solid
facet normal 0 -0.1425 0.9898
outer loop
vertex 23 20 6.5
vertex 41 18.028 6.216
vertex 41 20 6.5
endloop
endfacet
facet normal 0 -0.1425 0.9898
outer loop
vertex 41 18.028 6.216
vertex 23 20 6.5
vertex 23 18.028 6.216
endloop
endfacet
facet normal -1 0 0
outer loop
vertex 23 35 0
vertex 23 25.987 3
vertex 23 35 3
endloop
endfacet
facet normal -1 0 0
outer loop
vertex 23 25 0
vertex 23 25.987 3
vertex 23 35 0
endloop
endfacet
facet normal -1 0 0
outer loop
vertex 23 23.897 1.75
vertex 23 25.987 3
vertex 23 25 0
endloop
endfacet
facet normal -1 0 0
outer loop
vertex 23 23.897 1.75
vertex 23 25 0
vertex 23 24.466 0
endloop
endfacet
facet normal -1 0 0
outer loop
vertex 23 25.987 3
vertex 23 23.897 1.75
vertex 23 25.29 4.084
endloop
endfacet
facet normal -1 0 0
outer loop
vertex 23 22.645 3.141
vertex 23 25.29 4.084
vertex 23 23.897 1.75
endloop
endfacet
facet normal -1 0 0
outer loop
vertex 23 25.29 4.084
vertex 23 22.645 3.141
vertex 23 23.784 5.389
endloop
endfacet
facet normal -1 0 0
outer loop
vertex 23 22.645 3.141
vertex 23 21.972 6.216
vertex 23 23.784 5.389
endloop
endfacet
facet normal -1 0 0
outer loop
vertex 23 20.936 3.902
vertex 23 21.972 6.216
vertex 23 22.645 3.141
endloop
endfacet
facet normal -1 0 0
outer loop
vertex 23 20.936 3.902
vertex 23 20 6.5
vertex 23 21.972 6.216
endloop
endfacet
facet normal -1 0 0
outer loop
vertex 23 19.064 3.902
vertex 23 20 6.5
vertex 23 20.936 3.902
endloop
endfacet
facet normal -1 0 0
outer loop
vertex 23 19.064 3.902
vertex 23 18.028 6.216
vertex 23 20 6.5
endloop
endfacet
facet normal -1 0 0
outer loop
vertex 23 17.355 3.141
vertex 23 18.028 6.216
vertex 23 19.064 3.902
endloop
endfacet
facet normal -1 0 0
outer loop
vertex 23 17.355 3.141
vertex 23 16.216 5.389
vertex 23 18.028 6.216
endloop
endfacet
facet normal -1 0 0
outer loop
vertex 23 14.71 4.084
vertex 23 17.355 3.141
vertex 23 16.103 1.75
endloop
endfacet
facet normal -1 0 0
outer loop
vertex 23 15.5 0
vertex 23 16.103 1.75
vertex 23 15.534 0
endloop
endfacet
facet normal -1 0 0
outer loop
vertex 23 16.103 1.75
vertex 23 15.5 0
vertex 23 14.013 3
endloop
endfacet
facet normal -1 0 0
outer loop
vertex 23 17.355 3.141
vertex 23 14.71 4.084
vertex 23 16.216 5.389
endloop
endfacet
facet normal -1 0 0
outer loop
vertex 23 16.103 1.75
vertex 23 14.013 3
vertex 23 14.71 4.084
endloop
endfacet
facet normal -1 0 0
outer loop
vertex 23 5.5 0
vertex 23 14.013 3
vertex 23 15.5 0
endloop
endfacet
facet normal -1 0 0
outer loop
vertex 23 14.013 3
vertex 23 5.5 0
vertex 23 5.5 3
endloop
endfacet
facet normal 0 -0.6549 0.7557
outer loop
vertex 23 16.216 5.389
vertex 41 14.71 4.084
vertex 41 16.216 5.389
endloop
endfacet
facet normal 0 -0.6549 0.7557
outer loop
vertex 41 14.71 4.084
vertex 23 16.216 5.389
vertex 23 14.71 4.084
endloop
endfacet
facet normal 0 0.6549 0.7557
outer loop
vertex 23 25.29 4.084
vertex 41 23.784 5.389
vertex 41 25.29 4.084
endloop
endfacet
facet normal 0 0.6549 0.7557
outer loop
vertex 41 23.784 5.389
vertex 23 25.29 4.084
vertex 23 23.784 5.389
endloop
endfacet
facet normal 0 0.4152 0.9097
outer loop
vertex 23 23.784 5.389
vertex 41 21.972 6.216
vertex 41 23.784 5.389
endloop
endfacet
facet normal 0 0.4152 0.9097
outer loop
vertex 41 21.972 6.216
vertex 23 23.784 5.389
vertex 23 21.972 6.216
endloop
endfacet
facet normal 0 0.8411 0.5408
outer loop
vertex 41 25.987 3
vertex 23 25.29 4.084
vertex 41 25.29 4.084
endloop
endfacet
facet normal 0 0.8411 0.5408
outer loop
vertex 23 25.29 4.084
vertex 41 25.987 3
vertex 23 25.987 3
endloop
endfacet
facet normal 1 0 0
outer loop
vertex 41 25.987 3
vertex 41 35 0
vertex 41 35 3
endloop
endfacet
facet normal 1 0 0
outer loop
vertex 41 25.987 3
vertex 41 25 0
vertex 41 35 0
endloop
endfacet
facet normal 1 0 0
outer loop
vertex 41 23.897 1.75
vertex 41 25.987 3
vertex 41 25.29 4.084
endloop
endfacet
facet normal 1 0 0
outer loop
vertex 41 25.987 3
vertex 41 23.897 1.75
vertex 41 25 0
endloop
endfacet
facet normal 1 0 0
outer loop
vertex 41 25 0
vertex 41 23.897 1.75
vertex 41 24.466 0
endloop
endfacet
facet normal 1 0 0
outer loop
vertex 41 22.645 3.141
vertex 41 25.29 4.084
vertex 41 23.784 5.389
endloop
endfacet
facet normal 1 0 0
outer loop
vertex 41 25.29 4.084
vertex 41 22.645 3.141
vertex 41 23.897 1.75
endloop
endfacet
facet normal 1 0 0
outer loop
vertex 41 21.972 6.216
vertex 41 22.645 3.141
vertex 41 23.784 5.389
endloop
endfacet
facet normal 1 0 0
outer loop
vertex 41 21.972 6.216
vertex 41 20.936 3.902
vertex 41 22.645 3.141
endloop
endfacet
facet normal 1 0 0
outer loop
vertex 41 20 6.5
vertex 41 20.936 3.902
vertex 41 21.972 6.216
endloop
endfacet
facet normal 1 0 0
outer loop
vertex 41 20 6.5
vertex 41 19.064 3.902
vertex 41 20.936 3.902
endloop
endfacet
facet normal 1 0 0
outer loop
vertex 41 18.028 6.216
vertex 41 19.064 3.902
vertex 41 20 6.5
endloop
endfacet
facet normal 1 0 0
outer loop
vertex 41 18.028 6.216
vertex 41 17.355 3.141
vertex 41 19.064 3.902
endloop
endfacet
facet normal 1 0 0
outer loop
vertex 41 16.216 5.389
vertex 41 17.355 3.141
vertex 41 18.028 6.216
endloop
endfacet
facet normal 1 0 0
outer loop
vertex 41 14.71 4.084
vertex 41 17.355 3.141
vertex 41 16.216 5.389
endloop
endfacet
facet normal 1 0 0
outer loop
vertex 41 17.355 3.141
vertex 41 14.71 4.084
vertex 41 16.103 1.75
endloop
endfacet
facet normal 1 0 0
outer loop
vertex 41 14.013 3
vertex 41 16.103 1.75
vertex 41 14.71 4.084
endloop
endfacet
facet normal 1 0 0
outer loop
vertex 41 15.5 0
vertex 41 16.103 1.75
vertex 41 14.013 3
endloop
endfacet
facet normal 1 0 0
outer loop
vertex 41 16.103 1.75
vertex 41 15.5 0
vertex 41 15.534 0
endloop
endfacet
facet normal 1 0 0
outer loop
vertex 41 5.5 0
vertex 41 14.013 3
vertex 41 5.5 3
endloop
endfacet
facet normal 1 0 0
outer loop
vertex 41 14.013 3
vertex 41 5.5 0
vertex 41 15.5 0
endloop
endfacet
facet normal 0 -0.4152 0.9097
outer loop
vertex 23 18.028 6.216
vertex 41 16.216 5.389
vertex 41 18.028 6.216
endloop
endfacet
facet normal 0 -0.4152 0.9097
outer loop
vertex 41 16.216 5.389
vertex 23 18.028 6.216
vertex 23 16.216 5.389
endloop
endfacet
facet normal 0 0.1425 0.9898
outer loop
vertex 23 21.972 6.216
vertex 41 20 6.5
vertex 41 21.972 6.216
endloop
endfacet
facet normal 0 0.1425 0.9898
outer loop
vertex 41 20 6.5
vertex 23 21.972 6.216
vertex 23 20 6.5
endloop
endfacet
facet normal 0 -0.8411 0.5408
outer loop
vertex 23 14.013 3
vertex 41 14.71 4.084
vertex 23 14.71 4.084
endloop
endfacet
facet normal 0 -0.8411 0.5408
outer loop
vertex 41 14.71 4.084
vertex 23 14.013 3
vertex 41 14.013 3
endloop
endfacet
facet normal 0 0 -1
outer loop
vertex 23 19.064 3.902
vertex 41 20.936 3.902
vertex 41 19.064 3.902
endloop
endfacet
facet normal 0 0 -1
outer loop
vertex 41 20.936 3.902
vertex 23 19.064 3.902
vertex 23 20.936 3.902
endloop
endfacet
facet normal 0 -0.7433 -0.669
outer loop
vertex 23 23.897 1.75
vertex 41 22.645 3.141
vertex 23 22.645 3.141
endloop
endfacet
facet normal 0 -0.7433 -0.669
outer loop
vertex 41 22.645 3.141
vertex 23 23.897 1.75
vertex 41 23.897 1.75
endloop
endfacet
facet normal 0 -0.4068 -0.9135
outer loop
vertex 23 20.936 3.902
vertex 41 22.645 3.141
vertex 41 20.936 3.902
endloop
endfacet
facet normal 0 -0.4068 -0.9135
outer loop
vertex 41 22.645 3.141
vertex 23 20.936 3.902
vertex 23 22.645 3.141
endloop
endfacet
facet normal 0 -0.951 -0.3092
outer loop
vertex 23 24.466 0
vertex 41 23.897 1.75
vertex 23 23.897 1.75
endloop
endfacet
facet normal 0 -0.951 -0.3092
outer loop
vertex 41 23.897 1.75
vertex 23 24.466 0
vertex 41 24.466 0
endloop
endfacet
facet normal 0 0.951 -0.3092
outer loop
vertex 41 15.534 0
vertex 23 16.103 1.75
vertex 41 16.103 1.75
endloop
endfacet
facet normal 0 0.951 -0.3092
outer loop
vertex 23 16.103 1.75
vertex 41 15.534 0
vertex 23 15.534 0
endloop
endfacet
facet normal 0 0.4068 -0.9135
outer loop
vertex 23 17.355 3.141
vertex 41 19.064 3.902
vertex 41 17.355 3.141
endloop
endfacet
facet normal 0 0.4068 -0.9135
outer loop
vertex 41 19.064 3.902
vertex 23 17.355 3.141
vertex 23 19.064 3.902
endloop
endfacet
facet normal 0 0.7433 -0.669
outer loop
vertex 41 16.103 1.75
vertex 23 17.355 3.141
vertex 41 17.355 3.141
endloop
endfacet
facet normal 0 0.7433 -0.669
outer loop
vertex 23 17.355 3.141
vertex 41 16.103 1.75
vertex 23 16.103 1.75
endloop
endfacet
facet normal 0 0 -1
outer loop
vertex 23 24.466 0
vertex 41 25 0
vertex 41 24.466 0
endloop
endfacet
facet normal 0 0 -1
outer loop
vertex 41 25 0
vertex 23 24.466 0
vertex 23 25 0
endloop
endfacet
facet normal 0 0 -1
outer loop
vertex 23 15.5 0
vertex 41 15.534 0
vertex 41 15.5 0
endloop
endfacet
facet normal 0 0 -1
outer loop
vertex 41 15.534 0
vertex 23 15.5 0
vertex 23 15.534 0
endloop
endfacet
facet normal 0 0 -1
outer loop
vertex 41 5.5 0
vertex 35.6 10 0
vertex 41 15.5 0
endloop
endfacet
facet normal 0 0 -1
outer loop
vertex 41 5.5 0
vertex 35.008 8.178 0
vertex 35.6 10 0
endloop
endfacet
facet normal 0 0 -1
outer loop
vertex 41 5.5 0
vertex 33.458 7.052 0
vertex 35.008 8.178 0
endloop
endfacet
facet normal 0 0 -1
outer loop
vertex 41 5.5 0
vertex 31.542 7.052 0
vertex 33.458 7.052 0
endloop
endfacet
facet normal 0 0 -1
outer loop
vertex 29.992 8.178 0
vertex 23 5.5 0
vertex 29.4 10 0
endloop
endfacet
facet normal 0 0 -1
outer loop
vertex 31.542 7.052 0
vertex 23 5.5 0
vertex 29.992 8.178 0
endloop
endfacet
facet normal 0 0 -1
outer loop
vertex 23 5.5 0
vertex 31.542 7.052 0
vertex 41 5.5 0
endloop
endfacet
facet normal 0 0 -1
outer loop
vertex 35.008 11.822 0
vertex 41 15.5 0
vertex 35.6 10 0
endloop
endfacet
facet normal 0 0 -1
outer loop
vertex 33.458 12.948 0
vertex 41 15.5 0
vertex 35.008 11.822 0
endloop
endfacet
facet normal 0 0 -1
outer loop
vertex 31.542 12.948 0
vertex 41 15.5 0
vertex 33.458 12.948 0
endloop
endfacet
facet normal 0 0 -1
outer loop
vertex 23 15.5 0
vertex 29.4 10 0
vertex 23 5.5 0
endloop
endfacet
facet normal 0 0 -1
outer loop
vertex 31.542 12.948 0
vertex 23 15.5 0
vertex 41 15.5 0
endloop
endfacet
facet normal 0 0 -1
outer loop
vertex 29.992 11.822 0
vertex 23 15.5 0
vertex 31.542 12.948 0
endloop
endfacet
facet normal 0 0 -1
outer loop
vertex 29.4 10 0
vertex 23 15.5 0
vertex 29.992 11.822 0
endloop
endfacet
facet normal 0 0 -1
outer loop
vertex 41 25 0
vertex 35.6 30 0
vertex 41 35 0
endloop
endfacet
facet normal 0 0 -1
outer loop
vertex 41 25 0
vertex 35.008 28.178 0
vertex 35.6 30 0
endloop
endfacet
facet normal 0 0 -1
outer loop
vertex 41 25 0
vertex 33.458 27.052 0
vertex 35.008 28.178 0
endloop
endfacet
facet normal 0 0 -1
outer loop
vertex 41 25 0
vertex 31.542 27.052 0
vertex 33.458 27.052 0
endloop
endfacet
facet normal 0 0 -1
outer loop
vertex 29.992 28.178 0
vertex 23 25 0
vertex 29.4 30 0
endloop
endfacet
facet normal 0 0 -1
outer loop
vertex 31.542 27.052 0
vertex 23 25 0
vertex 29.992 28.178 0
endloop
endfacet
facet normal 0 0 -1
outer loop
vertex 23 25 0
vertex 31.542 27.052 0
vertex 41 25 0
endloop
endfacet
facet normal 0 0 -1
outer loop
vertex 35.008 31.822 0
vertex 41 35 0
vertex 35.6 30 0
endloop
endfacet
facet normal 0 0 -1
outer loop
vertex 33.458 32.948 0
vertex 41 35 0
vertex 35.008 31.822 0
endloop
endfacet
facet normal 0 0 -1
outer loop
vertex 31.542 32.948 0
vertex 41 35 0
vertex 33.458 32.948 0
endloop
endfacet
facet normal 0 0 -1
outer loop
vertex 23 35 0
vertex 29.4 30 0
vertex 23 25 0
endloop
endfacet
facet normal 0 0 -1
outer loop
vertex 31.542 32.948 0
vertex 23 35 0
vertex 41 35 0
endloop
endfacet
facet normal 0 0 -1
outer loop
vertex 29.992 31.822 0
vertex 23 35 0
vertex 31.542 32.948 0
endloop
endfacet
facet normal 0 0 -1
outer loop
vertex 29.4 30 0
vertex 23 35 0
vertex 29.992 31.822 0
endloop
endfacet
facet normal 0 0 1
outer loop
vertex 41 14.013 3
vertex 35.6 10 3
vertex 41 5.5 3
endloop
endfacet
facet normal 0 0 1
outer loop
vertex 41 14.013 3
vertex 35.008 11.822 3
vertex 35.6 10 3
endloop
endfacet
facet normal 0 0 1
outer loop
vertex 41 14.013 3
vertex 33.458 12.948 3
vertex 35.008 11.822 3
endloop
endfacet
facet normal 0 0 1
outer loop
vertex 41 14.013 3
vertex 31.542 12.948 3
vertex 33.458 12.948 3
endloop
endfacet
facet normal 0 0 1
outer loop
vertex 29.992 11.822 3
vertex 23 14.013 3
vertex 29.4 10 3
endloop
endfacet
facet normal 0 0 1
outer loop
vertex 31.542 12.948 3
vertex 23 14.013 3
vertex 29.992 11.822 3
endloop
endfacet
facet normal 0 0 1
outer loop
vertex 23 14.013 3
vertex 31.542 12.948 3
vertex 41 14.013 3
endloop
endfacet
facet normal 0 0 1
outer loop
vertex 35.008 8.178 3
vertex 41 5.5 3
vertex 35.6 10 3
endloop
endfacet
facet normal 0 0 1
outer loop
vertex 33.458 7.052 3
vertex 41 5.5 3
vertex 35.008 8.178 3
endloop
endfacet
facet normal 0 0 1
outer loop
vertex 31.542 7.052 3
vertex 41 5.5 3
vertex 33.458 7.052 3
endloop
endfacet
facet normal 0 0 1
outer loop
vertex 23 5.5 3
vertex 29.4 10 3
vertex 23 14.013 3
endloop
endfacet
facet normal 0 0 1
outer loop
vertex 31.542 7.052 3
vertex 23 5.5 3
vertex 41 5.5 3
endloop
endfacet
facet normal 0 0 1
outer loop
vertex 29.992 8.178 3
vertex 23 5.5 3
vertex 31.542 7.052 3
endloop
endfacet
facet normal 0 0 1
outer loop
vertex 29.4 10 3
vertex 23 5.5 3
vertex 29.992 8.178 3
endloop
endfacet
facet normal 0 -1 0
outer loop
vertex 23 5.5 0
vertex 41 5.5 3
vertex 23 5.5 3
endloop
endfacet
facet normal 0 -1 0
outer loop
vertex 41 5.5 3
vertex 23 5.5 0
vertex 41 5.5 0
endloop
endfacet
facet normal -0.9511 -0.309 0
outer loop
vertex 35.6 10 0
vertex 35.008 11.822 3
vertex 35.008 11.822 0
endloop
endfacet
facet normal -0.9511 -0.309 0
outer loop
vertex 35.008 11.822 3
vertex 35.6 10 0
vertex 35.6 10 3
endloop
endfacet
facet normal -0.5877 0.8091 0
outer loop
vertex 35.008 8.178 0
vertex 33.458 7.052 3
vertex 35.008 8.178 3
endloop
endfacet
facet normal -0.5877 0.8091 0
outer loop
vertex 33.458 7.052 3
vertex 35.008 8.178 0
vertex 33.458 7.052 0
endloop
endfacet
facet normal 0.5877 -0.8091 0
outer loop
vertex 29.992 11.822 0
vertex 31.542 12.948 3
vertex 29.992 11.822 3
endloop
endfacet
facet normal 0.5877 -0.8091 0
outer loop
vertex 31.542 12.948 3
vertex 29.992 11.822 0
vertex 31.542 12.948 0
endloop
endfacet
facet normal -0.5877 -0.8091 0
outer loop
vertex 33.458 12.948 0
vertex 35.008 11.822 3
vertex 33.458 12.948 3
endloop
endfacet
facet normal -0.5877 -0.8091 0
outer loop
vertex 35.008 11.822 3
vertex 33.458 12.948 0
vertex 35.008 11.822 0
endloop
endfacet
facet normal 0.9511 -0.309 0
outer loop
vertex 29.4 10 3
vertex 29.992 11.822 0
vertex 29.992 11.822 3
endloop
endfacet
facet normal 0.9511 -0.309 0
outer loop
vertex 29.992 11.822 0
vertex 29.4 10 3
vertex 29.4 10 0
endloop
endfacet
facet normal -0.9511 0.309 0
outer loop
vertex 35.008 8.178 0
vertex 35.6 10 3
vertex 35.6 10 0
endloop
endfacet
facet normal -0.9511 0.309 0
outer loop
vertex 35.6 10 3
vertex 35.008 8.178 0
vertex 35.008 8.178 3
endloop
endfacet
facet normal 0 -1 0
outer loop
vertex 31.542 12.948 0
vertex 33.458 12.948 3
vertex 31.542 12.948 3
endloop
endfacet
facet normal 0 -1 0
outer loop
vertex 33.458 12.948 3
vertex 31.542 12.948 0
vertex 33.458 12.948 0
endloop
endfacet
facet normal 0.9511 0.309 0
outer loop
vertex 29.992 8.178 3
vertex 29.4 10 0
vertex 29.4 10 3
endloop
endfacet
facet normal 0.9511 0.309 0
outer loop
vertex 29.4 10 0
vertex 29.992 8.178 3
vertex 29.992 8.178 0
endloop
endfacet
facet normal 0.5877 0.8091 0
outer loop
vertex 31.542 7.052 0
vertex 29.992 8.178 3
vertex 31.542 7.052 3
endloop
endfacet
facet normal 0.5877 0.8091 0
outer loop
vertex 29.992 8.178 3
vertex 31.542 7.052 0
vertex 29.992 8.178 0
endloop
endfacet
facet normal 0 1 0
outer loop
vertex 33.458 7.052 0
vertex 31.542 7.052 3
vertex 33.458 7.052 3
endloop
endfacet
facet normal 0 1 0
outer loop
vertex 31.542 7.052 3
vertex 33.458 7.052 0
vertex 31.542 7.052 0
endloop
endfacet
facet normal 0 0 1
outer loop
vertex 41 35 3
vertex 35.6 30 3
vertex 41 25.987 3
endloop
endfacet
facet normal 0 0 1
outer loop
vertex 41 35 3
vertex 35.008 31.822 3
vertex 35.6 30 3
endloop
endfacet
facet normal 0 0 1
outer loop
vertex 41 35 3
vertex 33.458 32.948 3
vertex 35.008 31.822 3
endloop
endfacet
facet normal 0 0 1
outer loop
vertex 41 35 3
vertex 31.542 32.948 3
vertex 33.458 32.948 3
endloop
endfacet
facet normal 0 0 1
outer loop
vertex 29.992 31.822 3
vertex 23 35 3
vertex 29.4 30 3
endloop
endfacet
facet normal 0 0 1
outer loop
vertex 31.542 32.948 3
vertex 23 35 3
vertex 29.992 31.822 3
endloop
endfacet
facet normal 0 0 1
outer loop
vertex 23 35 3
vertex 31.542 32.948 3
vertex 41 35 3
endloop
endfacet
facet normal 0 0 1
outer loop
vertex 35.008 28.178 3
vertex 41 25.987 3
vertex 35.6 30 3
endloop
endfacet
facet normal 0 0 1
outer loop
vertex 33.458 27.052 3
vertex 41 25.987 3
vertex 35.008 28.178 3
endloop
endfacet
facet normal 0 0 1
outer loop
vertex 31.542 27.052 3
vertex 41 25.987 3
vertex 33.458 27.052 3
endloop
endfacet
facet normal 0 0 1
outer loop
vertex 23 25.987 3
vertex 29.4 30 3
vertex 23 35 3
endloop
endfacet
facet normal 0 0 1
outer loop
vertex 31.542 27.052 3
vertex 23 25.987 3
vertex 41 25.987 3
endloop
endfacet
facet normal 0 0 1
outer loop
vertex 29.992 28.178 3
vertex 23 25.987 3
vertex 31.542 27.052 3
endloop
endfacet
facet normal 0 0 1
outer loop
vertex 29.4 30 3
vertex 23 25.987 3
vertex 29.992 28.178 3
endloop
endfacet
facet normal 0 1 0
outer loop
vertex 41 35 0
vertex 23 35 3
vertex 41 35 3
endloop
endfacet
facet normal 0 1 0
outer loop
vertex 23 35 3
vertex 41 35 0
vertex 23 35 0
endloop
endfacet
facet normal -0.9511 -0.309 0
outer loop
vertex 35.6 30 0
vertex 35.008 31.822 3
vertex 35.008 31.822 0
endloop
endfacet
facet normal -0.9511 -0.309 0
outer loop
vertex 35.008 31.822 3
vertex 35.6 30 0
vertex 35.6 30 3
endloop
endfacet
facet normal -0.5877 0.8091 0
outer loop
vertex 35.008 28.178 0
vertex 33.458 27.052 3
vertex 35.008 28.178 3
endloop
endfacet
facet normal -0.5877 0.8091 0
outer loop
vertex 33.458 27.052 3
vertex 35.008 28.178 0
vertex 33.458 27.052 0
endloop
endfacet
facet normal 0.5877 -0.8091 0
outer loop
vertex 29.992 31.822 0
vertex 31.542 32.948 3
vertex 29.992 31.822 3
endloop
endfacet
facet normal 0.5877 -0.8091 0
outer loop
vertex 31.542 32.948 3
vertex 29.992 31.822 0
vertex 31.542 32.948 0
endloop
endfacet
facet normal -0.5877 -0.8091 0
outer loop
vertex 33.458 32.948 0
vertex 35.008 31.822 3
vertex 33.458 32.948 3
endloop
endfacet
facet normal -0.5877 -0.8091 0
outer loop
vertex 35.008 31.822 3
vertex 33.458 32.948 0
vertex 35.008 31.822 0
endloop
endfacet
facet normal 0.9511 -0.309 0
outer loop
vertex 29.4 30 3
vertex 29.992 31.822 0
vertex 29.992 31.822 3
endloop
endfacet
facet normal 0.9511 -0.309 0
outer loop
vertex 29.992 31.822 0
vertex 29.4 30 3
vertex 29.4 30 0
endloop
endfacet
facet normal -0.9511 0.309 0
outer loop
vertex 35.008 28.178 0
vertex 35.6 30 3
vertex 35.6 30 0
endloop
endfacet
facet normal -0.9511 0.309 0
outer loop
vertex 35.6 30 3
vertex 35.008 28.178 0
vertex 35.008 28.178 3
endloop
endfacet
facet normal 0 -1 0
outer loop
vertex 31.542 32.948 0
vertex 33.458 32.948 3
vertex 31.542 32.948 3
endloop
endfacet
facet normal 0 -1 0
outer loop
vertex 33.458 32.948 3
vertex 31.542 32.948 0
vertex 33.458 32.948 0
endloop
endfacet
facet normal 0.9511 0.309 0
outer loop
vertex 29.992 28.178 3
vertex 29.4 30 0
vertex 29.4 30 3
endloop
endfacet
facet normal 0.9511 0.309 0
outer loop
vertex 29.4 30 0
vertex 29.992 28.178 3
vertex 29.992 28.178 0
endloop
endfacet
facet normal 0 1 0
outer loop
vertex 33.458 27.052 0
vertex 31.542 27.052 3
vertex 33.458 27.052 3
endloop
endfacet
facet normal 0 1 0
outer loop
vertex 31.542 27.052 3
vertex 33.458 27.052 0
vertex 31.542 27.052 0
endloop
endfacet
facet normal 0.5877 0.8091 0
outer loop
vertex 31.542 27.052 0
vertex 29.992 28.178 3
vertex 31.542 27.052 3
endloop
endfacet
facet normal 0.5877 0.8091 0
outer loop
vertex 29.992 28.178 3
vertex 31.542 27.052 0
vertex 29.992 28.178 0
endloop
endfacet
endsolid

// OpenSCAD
//Concha de suporte superior
difference(){
translate([23,20,54.5-55])rotate(a=[0,90,0])cylinder(h=18, r=7 );   
#translate([23,20,54.5-55])rotate(a=[0,90,0])cylinder(h=18, r=4.5 );
#translate([23,13,46.5-55])cube([18,15,8.5]);
}
difference(){
translate([23,5.5,0])cube([18,10,3]);
#translate([32.5,10,0])cylinder(h=3, r=3.1 );
}
difference(){
translate([23,25,0])cube([18,10,3]);
#translate([32.5,30,0])cylinder(h=3, r=3.1 );
}
